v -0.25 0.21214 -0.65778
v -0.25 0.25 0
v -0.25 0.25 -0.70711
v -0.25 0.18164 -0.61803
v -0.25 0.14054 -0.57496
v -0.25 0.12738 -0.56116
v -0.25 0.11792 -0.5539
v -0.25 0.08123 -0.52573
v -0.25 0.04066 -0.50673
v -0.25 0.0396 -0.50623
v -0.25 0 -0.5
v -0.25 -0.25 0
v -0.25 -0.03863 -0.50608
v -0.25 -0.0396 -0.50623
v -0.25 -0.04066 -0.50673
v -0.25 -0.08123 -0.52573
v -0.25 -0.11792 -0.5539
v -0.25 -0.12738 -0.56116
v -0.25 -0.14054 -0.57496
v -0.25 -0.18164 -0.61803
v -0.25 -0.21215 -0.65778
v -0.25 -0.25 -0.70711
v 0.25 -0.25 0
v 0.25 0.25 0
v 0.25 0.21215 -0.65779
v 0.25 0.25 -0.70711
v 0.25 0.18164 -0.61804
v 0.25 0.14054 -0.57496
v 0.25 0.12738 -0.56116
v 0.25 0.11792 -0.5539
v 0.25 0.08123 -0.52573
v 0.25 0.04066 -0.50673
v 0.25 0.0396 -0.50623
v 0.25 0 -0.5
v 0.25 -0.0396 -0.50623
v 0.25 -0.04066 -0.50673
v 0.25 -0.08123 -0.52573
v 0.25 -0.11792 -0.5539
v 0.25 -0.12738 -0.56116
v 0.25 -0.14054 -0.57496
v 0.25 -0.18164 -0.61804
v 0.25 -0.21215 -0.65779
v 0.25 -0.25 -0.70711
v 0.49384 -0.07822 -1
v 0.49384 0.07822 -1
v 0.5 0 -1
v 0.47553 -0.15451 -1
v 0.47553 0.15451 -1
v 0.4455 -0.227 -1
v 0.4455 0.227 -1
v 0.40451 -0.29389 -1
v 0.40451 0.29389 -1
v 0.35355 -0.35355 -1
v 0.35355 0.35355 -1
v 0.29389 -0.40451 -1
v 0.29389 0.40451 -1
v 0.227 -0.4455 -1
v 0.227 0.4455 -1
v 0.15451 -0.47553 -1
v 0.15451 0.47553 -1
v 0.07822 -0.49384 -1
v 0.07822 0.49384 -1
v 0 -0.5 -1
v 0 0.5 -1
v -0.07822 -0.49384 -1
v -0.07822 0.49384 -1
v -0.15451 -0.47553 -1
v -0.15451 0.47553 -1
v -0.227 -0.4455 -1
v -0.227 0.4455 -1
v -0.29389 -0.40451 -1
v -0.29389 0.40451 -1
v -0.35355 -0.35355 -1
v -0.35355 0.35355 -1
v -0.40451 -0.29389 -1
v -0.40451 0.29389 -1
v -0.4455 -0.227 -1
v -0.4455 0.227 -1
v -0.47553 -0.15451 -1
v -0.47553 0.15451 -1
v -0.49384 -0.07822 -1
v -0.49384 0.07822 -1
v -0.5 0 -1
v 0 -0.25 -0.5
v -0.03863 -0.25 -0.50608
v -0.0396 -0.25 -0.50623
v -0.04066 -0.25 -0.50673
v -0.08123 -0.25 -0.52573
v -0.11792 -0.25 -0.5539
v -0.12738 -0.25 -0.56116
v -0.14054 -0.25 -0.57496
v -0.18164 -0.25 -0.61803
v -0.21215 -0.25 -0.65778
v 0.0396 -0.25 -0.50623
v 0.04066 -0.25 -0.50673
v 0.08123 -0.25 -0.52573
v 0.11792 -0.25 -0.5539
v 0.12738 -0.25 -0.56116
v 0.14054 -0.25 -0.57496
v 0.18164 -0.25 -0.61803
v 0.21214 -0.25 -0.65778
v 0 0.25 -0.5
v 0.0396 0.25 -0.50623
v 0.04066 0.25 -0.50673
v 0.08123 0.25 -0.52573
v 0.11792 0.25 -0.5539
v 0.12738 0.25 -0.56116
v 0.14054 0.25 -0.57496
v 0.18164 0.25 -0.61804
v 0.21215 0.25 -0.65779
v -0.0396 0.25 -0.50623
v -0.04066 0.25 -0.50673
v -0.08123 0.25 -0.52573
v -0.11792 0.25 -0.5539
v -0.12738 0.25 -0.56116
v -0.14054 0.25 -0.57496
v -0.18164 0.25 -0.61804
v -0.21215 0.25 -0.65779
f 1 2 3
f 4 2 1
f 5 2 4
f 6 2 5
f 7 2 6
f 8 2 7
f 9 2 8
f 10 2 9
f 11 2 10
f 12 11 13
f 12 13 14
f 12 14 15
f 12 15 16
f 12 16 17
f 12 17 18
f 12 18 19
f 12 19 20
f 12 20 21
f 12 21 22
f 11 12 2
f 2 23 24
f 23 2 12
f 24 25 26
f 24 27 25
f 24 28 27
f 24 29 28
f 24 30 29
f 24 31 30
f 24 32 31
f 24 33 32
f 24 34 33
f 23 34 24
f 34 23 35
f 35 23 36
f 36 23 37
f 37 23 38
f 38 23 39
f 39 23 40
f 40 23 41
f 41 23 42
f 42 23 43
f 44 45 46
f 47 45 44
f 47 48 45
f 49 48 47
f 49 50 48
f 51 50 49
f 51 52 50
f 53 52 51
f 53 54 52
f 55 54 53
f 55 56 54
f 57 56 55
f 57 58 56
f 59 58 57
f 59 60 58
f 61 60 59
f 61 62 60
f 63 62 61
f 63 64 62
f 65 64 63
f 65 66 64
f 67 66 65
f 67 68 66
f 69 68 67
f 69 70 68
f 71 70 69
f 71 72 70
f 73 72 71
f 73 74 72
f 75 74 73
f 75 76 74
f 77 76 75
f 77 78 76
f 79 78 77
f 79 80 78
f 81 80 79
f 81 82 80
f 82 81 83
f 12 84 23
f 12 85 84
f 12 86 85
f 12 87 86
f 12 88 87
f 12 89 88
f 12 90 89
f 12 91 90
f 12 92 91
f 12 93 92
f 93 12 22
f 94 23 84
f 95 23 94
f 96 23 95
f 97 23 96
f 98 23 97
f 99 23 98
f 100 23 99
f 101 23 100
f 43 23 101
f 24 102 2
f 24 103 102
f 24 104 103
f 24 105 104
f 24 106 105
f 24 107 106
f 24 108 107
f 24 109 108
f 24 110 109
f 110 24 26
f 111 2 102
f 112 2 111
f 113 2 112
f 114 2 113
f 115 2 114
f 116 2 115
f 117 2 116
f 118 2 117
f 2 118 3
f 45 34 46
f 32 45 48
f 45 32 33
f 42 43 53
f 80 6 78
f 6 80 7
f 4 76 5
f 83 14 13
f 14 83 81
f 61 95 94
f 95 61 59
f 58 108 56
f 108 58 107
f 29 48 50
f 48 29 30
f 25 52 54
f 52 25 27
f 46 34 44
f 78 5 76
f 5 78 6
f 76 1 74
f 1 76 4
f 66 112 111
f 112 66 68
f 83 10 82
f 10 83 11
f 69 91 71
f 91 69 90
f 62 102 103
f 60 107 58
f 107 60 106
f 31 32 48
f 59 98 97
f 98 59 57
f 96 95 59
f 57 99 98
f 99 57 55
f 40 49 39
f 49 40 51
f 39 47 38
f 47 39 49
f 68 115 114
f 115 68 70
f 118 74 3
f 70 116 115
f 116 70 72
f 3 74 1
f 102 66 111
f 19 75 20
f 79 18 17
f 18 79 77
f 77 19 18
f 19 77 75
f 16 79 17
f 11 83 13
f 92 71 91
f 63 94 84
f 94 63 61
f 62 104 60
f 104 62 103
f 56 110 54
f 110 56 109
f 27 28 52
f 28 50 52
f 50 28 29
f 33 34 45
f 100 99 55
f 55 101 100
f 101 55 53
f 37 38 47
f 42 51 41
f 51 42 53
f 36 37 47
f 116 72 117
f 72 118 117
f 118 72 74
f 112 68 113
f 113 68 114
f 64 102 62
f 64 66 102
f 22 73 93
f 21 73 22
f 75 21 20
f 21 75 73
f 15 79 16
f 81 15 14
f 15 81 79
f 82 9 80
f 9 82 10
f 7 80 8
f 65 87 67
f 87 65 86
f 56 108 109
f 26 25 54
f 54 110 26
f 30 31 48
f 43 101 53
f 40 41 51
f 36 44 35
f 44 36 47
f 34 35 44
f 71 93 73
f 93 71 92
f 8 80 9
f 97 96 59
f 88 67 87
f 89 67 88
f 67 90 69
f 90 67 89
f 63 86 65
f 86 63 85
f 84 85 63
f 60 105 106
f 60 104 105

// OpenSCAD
//----------------------------------------------
// Custom Support size must be 1x1x1 
//----------------------------------------------
$fn=40;

translate([-0.5,-0.5,-0.5]) 
union() {
    translate([0.5,0.5,0.0]) cube([0.5,0.5,1], center = true);
    translate([0.5,0.5,-0.25]) cylinder(h=0.5, r1=0.5, r2=0.25, center = true);
}
